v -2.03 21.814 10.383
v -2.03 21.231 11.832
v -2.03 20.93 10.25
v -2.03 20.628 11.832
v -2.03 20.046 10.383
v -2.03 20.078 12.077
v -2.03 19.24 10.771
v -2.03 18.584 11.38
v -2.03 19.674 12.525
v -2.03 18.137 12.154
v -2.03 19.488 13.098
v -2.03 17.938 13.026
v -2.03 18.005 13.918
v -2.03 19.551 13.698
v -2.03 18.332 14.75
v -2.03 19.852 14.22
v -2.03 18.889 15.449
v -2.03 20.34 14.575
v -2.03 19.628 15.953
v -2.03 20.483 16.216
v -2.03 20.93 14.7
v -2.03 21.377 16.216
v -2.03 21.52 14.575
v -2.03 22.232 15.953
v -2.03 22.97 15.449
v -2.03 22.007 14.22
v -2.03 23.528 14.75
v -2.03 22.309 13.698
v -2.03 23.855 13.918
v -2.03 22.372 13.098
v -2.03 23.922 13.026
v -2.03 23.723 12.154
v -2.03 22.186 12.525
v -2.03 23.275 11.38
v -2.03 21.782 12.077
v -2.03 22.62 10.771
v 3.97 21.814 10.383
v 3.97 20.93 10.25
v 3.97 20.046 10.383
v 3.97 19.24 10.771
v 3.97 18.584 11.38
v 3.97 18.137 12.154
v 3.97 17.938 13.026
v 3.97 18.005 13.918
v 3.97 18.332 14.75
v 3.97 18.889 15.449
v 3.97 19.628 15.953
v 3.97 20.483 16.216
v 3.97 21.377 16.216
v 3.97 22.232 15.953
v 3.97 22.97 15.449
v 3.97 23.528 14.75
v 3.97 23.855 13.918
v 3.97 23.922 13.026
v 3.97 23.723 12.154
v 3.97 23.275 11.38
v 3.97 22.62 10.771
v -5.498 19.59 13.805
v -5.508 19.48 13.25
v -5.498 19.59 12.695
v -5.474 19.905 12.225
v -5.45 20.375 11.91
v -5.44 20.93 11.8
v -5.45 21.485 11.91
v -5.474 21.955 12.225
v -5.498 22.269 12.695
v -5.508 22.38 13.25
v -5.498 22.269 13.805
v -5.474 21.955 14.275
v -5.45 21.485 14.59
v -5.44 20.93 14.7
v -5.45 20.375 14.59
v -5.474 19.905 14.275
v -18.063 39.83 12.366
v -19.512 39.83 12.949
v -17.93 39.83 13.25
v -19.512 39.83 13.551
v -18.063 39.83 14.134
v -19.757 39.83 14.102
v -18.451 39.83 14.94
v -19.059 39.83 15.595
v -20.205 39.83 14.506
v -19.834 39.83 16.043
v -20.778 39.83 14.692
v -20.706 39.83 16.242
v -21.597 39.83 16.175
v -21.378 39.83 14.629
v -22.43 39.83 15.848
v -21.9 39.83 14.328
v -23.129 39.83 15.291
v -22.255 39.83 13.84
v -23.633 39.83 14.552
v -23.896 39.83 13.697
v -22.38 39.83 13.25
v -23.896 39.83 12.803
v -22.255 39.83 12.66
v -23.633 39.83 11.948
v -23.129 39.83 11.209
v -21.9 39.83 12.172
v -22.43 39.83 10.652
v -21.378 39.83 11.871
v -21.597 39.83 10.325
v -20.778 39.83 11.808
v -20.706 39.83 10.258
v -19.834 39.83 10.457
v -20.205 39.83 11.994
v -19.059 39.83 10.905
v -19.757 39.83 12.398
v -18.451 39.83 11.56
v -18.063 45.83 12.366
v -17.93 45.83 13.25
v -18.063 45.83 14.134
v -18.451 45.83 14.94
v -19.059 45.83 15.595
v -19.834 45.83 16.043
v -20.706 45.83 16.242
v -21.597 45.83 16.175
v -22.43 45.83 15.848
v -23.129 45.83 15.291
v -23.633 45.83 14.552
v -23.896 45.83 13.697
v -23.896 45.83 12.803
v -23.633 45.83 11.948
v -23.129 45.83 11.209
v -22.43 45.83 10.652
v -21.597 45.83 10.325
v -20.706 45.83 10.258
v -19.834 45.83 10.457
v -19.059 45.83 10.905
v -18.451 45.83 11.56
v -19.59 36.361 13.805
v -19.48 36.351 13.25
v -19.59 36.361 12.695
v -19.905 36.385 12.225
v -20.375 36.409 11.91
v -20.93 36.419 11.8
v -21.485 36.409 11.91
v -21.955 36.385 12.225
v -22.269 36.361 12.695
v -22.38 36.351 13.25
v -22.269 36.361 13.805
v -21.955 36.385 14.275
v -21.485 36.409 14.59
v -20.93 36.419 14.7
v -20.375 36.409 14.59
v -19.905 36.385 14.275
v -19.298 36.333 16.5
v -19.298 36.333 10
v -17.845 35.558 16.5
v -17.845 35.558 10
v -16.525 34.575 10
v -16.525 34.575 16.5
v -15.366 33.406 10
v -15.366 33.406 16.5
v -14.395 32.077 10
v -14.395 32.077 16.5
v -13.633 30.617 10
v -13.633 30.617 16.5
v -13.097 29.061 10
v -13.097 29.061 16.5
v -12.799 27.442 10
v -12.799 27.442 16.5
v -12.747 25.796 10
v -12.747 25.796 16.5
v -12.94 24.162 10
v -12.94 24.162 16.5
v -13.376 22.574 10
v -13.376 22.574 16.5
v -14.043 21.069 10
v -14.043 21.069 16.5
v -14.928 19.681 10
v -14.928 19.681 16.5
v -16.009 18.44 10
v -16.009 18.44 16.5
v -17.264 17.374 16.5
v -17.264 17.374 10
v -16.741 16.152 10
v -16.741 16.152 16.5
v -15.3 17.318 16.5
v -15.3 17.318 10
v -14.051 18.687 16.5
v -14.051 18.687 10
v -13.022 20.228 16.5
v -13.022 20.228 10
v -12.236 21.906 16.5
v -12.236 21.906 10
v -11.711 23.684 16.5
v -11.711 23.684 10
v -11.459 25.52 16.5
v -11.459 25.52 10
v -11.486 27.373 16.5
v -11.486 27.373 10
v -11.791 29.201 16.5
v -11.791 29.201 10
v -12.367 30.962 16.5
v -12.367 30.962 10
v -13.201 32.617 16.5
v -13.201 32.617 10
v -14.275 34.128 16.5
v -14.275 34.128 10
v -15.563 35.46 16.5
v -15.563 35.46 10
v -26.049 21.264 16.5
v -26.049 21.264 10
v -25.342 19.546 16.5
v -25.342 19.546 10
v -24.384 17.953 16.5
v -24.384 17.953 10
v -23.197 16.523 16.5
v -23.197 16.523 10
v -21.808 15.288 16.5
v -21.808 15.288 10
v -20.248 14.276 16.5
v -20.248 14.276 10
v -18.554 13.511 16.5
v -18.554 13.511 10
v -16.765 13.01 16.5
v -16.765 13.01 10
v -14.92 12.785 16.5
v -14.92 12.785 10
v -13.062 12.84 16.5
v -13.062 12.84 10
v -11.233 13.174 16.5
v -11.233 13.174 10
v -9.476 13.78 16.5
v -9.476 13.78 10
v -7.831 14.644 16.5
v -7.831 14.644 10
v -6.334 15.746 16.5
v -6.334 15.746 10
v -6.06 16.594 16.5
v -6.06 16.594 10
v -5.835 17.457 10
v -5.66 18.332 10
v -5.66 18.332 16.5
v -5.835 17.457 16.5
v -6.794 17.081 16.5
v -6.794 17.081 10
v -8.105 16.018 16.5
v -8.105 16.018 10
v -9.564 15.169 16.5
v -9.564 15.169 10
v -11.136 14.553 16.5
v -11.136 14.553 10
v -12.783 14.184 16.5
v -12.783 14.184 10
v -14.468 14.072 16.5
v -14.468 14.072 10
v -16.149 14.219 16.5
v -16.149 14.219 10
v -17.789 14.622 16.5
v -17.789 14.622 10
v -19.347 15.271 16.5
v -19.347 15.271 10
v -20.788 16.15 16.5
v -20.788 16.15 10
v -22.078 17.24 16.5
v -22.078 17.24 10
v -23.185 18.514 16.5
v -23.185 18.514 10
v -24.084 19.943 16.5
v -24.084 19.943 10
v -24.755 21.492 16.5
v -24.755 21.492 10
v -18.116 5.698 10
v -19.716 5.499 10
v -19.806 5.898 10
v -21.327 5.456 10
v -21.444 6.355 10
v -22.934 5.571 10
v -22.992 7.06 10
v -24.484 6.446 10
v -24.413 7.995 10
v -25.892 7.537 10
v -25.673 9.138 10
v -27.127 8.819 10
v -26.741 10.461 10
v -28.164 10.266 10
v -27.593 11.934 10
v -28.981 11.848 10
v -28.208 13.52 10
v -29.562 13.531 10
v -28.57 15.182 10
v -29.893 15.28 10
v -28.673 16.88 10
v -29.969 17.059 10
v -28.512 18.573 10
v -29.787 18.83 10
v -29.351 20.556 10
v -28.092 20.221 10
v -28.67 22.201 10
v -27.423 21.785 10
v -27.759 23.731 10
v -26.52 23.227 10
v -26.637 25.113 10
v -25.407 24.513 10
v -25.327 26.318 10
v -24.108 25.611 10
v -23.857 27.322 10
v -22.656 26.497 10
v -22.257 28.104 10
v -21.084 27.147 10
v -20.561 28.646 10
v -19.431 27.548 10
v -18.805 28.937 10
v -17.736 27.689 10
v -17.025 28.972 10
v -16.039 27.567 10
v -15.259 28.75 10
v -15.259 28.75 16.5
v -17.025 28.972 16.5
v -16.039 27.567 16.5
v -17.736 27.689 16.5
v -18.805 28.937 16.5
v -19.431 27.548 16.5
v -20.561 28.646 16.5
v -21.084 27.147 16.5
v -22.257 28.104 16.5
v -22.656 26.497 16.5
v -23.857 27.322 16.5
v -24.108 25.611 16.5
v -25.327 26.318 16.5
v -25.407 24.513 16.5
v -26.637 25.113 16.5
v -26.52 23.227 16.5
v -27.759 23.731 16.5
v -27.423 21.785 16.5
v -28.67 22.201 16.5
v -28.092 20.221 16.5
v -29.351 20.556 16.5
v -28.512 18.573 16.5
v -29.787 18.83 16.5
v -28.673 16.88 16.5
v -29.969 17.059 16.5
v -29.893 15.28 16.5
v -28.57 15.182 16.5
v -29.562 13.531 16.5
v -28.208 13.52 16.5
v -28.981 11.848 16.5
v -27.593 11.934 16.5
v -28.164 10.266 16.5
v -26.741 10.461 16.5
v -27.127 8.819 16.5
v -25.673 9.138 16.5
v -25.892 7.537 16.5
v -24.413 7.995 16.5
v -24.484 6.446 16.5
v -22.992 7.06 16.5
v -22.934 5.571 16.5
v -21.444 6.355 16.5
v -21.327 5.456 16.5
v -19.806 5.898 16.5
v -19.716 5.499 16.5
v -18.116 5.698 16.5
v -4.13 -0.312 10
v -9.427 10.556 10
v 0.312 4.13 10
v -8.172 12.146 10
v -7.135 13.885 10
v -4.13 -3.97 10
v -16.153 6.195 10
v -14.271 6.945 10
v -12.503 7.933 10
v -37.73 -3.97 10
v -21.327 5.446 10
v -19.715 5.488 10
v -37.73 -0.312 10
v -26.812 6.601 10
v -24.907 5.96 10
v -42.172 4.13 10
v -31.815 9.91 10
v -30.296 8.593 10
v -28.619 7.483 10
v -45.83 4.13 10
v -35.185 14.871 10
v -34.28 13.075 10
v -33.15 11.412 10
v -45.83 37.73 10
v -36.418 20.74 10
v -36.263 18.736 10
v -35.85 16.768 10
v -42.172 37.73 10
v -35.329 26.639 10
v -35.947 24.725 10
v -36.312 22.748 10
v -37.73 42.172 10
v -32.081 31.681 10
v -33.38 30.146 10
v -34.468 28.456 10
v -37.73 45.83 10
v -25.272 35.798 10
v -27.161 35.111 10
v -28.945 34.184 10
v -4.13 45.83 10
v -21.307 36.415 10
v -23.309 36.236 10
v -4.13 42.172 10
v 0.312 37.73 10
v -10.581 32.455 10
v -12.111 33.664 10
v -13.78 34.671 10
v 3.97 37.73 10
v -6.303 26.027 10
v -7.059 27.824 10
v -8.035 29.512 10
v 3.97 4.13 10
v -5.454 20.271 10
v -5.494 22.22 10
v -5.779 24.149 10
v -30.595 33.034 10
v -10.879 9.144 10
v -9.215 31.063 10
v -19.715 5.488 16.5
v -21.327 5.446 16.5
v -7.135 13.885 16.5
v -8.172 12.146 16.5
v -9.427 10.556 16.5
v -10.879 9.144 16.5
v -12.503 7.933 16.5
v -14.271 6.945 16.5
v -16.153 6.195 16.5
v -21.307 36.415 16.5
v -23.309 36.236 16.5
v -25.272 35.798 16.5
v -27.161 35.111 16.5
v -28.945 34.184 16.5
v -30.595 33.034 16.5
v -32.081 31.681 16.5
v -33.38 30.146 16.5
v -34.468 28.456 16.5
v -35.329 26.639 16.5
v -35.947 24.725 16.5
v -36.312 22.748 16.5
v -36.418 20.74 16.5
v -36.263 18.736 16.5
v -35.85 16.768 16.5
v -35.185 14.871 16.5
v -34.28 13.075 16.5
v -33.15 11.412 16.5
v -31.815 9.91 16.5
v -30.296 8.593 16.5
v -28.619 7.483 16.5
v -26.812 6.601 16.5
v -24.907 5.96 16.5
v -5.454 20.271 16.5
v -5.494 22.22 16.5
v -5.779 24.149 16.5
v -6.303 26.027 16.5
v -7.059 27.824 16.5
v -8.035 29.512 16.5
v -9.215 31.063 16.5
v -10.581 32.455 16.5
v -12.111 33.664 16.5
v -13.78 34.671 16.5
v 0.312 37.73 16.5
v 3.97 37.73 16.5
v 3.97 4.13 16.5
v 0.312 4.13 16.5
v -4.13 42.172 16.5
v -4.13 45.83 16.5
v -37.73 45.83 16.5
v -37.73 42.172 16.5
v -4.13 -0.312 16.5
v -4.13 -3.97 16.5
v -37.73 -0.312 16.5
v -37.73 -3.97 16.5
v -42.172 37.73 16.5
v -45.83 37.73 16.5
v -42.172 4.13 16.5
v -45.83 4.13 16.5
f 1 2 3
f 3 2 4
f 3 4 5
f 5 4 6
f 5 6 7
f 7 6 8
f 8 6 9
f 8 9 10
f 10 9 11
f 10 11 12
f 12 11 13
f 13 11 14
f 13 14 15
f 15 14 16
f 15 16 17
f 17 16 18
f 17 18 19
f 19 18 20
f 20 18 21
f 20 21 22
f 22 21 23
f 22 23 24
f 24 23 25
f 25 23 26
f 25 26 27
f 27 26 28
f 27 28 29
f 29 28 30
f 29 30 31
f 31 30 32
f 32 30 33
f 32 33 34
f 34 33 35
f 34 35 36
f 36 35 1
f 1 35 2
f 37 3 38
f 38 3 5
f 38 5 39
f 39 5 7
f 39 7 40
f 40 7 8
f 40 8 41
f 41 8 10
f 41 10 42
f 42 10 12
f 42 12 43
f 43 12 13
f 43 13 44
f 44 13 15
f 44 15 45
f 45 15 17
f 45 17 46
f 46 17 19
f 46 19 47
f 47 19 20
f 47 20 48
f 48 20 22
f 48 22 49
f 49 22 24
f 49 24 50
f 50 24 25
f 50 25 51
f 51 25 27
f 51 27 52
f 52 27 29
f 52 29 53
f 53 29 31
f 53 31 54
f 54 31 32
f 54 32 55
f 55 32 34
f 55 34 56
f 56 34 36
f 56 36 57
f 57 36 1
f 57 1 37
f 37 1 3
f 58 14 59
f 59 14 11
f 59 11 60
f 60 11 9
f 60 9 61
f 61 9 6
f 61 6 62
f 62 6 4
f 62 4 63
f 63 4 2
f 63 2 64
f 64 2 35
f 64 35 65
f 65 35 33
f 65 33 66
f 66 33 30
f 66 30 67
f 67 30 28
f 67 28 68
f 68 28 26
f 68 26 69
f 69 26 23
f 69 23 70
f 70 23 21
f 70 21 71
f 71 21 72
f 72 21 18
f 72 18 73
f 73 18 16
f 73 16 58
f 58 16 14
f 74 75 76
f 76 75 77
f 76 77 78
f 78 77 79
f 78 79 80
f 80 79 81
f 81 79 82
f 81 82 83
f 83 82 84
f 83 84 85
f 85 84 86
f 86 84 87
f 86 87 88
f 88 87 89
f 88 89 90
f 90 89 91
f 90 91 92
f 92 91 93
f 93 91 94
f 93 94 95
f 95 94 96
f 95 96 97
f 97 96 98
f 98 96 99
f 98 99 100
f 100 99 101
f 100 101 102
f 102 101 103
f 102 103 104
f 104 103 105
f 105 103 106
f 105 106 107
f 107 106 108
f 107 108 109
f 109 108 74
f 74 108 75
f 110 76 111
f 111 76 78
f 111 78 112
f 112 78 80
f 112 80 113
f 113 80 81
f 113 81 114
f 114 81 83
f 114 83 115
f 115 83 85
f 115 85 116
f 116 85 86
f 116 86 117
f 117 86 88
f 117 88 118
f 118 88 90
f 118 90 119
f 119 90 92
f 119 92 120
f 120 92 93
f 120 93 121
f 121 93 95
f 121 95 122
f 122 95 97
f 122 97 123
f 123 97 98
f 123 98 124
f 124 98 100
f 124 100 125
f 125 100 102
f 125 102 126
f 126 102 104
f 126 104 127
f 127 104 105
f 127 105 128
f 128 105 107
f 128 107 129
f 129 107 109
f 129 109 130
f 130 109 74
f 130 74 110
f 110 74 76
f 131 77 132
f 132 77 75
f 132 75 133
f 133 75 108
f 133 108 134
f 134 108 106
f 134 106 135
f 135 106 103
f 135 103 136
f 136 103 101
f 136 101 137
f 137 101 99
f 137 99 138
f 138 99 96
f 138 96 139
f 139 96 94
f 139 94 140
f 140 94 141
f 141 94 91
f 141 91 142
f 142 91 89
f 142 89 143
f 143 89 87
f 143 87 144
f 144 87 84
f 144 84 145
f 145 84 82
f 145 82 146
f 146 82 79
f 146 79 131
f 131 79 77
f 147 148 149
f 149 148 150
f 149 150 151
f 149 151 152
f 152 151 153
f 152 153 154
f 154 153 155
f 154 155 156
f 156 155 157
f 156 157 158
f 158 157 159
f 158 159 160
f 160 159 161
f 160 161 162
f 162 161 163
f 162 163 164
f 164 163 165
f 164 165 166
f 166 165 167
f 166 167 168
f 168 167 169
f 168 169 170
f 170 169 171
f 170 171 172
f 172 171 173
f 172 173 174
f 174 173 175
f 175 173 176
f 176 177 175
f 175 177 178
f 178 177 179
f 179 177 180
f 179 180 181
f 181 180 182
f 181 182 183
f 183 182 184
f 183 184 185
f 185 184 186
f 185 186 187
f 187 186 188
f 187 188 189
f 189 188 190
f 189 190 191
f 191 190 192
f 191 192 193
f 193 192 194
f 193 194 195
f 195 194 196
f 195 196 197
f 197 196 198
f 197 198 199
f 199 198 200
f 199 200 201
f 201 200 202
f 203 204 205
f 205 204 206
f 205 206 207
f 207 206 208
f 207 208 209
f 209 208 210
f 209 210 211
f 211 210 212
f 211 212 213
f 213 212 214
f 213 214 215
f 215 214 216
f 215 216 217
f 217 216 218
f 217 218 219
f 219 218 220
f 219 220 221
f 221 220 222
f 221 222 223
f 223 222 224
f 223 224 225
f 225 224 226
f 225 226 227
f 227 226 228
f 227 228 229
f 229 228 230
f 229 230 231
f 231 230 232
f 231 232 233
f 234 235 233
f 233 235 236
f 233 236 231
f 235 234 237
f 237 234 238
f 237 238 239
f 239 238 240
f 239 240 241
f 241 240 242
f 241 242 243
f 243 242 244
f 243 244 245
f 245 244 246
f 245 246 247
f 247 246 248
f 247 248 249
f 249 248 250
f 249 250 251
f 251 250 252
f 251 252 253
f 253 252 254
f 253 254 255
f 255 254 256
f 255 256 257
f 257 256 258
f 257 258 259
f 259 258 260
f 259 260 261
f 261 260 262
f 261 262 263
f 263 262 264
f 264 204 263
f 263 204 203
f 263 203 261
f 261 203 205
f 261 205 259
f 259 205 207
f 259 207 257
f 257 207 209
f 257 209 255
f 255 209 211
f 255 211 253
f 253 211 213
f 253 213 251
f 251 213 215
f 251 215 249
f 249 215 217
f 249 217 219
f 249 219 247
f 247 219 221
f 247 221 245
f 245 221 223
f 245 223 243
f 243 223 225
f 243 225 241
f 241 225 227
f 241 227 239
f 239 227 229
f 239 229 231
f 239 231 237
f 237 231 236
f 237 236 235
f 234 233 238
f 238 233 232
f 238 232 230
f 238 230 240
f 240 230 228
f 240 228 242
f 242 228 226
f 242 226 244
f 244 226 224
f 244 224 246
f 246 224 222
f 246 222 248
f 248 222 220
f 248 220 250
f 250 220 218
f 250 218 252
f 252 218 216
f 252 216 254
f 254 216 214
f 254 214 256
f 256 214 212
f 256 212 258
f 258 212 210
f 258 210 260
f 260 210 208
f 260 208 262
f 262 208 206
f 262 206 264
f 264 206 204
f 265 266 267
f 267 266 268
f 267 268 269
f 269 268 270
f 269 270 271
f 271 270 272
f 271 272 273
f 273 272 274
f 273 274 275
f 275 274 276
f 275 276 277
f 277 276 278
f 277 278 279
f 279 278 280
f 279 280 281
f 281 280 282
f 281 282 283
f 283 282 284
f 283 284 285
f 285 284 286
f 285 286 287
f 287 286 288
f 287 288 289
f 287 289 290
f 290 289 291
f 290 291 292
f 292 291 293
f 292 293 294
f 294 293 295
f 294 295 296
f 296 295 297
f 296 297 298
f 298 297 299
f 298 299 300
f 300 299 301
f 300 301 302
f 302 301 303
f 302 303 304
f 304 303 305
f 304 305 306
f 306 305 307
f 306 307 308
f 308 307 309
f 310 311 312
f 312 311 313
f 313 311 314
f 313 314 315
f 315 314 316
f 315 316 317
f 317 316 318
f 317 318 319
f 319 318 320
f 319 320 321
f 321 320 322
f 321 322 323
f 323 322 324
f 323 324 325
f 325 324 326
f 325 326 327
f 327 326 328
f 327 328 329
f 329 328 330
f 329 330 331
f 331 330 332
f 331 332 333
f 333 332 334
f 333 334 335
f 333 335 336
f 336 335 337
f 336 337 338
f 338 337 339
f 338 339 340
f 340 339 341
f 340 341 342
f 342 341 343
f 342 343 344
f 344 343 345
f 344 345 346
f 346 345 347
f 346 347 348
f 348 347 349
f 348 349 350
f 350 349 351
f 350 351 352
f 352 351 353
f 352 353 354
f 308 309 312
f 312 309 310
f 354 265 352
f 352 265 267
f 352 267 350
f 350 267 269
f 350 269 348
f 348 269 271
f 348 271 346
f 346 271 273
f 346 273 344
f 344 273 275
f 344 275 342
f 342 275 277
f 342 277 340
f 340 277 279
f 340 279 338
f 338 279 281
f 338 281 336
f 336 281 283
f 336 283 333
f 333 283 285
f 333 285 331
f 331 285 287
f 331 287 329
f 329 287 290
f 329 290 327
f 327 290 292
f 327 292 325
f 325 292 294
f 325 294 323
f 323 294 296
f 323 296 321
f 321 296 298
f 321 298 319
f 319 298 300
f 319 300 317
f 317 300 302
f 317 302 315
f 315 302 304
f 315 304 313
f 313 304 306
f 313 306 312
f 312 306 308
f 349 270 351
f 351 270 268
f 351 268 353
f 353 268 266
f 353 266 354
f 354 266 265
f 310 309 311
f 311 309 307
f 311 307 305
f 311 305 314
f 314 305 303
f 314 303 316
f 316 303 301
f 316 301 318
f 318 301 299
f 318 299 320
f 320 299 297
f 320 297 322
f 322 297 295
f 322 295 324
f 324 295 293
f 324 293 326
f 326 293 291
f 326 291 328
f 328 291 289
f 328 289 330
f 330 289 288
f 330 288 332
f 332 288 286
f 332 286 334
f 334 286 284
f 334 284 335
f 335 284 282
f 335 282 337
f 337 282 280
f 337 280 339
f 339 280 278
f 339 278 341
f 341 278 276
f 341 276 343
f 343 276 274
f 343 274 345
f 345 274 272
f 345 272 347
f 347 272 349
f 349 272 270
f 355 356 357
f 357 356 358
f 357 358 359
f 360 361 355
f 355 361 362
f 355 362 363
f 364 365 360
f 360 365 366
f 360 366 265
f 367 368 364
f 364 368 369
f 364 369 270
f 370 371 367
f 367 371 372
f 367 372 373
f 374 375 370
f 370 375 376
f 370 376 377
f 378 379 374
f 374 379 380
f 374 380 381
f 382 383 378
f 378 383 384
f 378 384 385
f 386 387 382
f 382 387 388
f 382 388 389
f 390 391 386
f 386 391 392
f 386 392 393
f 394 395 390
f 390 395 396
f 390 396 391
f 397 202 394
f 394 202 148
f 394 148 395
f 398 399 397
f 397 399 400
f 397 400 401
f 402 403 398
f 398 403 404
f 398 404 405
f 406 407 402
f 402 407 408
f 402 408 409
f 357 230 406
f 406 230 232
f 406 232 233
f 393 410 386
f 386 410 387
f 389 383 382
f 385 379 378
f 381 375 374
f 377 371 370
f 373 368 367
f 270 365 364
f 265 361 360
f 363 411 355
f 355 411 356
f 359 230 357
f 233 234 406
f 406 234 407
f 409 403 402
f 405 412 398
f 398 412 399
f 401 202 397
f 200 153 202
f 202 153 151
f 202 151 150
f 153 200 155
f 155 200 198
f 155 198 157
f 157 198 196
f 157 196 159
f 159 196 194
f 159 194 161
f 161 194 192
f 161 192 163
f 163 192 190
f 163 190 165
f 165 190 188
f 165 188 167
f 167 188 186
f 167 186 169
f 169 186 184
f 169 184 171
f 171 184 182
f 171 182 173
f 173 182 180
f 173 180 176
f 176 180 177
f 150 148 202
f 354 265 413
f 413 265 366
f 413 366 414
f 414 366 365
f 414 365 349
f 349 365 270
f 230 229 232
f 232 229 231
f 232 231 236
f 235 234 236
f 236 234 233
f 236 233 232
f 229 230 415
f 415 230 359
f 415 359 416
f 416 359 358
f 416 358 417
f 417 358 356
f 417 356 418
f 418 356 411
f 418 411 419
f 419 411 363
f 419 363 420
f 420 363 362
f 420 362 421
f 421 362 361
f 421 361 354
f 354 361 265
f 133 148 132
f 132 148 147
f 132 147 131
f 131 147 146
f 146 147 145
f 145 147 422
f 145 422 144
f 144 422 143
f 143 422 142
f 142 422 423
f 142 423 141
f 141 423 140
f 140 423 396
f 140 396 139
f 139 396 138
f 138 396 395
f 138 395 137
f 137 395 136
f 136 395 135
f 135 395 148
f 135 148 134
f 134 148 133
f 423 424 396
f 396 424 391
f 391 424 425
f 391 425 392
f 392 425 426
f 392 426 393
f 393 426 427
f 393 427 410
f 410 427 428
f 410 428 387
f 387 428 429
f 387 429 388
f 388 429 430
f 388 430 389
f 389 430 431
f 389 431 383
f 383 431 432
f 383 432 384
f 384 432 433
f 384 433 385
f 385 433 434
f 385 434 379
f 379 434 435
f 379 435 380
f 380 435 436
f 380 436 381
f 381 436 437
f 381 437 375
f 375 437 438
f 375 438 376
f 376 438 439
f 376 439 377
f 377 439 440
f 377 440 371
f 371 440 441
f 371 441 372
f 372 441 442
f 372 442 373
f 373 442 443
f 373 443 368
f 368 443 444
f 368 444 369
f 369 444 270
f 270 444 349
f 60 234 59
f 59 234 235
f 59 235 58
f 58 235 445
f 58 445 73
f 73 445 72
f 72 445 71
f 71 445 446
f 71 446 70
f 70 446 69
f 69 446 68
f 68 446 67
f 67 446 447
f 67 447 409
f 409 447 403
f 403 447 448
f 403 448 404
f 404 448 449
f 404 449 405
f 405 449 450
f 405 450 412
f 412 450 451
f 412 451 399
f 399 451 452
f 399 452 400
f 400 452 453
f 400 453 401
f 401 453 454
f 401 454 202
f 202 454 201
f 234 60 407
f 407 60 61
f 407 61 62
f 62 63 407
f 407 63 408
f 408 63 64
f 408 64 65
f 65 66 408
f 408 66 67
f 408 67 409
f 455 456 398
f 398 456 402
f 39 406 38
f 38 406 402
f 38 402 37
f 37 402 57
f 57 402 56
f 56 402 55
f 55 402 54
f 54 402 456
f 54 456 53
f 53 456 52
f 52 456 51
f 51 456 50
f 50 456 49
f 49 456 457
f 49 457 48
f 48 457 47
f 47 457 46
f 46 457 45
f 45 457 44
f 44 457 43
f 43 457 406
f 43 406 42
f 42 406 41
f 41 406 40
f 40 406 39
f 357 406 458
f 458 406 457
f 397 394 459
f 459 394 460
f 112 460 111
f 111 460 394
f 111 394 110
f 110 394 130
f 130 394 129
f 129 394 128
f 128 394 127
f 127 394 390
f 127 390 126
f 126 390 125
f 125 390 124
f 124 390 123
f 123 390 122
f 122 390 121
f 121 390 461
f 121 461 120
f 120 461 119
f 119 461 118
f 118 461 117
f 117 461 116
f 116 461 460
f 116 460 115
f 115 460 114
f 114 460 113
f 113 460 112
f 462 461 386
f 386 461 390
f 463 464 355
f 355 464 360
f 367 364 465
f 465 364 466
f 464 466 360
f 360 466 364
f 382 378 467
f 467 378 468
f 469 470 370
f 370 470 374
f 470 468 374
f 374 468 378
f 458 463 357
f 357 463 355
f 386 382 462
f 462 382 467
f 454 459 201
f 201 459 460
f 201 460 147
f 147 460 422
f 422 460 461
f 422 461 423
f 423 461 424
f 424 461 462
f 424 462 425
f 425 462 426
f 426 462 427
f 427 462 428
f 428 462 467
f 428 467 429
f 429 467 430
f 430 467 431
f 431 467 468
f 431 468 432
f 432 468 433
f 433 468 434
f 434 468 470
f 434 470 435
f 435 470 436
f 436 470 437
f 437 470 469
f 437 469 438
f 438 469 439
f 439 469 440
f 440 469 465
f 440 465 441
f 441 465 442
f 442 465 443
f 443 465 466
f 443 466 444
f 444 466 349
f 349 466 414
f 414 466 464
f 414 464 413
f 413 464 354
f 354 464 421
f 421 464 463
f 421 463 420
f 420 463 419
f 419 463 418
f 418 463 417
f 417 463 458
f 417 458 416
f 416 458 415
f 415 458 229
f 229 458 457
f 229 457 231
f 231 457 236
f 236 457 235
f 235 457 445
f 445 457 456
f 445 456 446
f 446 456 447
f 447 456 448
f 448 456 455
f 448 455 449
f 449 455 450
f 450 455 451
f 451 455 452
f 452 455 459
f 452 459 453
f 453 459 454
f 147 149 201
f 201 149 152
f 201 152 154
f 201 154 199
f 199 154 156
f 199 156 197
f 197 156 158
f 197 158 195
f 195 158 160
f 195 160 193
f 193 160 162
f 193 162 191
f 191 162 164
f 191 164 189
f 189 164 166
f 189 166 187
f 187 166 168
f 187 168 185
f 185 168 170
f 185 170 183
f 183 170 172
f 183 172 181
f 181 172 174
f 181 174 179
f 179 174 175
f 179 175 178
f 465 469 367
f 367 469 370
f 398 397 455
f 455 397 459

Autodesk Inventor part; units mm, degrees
ref_plane "YZ Plane" through (0, 0, 0) normal (1, 0, 0) x (0, 1, 0)
ref_plane "Work Plane1" through (0, 0, 10) normal (0, 0, 1) x (1, 0, 0)
sketch "Sketch1" plane through (0, 0, 10) normal (0, 0, 1) x (1, 0, 0)
  line L0 (-4.0299, -0.3538) -> (-2.2322, 1.4439) construction
  arc A0 (-1.4439, 2.2322) -> (-2.2322, 1.4439) centre (-0.9299, 0.9299) ccw construction
  line L1 (-1.4439, 2.2322) -> (0.3538, 4.0299) construction
  line L2 (-37.8299, 42.2137) -> (-37.8299, 45.8299) construction
  line L3 (-37.8299, 45.8299) -> (-4.0299, 45.8299) construction
  line L4 (-4.0299, 45.8299) -> (-4.0299, 42.2137) construction
  line L5 (-4.0299, 4.0299) -> (0.3538, 4.0299) projected
  line L6 (-20.9299, 58.9723) -> (17.1124, 20.9299) construction
  line L7 (17.1124, 20.9299) -> (-20.9299, -17.1124) construction
  line L8 (-20.9299, -17.1124) -> (-58.9723, 20.9299) construction
  line L9 (-58.9723, 20.9299) -> (-20.9299, 58.9723) construction
  line L10 (-20.9299, 58.9723) -> (-20.9299, -17.1124) construction
  line L11 (17.1124, 20.9299) -> (-58.9723, 20.9299) construction
  line L12 (-20.9299, 58.9723) -> (32.8701, 58.9723) construction
  line L13 (-43.4299, 43.4299) -> (1.5701, 43.4299) construction
  line L14 (1.5701, 43.4299) -> (1.5701, -1.5701) construction
  line L15 (1.5701, -1.5701) -> (-43.4299, -1.5701) construction
  line L16 (-43.4299, -1.5701) -> (-43.4299, 43.4299) construction
  line L17 (-43.4299, 43.4299) -> (1.5701, -1.5701) construction
  line L18 (1.5701, 43.4299) -> (-43.4299, -1.5701) construction
  line L19 (-43.4299, 5.3876) -> (-43.4299, 36.4723)
  line L20 (-43.4299, 36.4723) -> (-36.4723, 43.4299)
  line L21 (-36.4723, 43.4299) -> (-5.3876, 43.4299)
  line L22 (-5.3876, 43.4299) -> (1.5701, 36.4723)
  line L23 (1.5701, 36.4723) -> (1.5701, 5.3876)
  line L24 (1.5701, 5.3876) -> (-5.3876, -1.5701)
  line L25 (-5.3876, -1.5701) -> (-36.4723, -1.5701)
  line L26 (-36.4723, -1.5701) -> (-43.4299, 5.3876)
  line L27 (-4.0299, 42.2137) -> (-37.8299, 42.2137) projected
  line L28 (-4.0299, -0.3538) -> (-4.0299, 4.0299) projected
  circle A1 centre (-20.9299, 20.9299) radius 13.3985
  circle A2 centre (-20.9299, 20.9299) radius 15.4895
  point P0 (-37.8299, 4.0299)
  dimension "d18" = 53.8
  dimension "d19" = 45
  dimension "d20" = 53.8
  dimension "d21" = 45
  dimension "d22" = 45
  dimension "d30" = 26.797
  dimension "d36" = 30.979
extrude "Extrusion1" add sketch "Sketch1" along normal blind 6.5 contours L28 L24 L25 L26 L19 L20 L27 L22 L23 L5 | L5 L24 L28 | L27 L20 L21 L22 | A1 | A2
ref_plane "Work Plane2" through (-40.9959, 0.8639, 22.2359) normal (0, 0, 1) x (1, 0, 0)
sketch "Sketch3" plane through (0, 0, 10) normal (0, 0, -1) x (-1, 0, 0)
  line L0 (37.8299, -0.4701) -> (37.8299, 4.0299) construction
  line L1 (4.0299, 4.0299) -> (4.0299, -0.4701) construction
  line L2 (37.8299, -0.4701) -> (37.8299, 1.1886) construction
  line L3 (4.0299, -3.9701) -> (4.0299, -0.3538) construction
  line L4 (45.8299, 4.0299) -> (42.2137, 4.0299) construction
  line L5 (-0.3538, 4.0299) -> (-3.9701, 4.0299) construction
  line L6 (-3.9701, 37.8299) -> (-0.3538, 37.8299) construction
  line L7 (4.0299, 42.2137) -> (4.0299, 45.8299) construction
  line L8 (37.8299, 45.8299) -> (37.8299, 42.2137) construction
  line L9 (42.2137, 37.8299) -> (45.8299, 37.8299) construction
  line L10 (37.8299, 37.7299) -> (45.8299, 37.7299)
  line L11 (45.8299, 37.7299) -> (45.8299, 4.1299)
  line L12 (45.8299, 4.1299) -> (37.8299, 4.1299)
  line L13 (37.8299, 4.1299) -> (37.8299, 37.7299)
  line L14 (37.7299, 4.0299) -> (4.1299, 4.0299)
  line L15 (4.1299, 4.0299) -> (4.1299, -3.9701)
  line L16 (4.1299, -3.9701) -> (37.7299, -3.9701)
  line L17 (37.7299, -3.9701) -> (37.7299, 4.0299)
  line L18 (4.0299, 4.1299) -> (-3.9701, 4.1299)
  line L19 (-3.9701, 4.1299) -> (-3.9701, 37.7299)
  line L20 (-3.9701, 37.7299) -> (4.0299, 37.7299)
  line L21 (4.0299, 37.7299) -> (4.0299, 4.1299)
  line L22 (4.1299, 37.8299) -> (37.7299, 37.8299)
  line L23 (37.7299, 37.8299) -> (37.7299, 45.8299)
  line L24 (37.7299, 45.8299) -> (4.1299, 45.8299)
  line L25 (4.1299, 45.8299) -> (4.1299, 37.8299)
  point P0 (0, 0)
  dimension "d23" = 0.1
  dimension "d24" = 0.1
  dimension "d25" = 0.1
  dimension "d26" = 0.1
  dimension "d27" = 0.1
extrude "Extrusion3" add sketch "Sketch3" against normal up to surface (6.5 mm away)
sketch "Sketch6" plane through (0, 0, 16.5) normal (0, 0, 1) x (1, 0, 0)
  circle A0 centre (-20.9299, 20.9299) radius 15.4895
  circle A1 centre (-20.9299, 20.9299) radius 13.3985
  line L0 (-45.8299, 4.1299) -> (-45.8299, 37.7299) projected
  line L1 (-4.1299, -3.9701) -> (-37.7299, -3.9701) projected
  line L2 (-37.7299, 45.8299) -> (-4.1299, 45.8299) projected
  point P0 (0, 0)
  point P1 (-45.8299, 20.9299)
  point P2 (-20.9299, -3.9701)
  point P3 (-20.9299, 45.8299)
  dimension "d37" = 26.797
  dimension "d38" = 30.979
extrude "Extrusion5" cut sketch "Sketch6" against normal blind 12 contours A0 | A1
sketch "Sketch7" plane through (0, 0, 16.5) normal (0, 0, 1) x (1, 0, 0)
  arc A0 (-16.0392, 27.567) -> (-18.1163, 5.6981) centre (-17.6742, 16.6892) ccw
  arc A1 (-15.2586, 28.7497) -> (-22.9342, 5.5706) centre (-17.6742, 16.6892) ccw
  line L0 (-15.2586, 28.7497) -> (-16.0392, 27.567)
  arc A2 (-22.9342, 5.5706) -> (-18.1163, 5.6981) centre (-20.9571, 21.9572) ccw
  arc A3 (-17.2642, 17.3743) -> (-19.2978, 36.3332) centre (-23.7366, 26.2686) ccw
  line L1 (-19.4299, 22.4299) -> (-13.0699, 7.5829) construction
  arc A4 (-15.5629, 35.4599) -> (-19.2978, 36.3332) centre (-20.2387, 23.8861) ccw
  line L2 (-19.4299, 22.4299) -> (-3.5175, 22.4299) construction
  line L3 (-19.4299, 22.4299) -> (-12.0453, 33.618) construction
  line L4 (-19.4299, 22.4299) -> (-27.814, 20.9536) construction
  arc A5 (-26.0492, 21.2644) -> (-6.3338, 15.7456) centre (-14.3533, 25.0717) ccw
  circle A6 centre (-20.9299, 20.9299) radius 15.4895 construction
  arc A7 (-13.9299, 22.4299) -> (-17.2642, 17.3743) centre (-19.4299, 22.4299) ccw construction
  line L5 (-26.0492, 21.2644) -> (-24.7546, 21.4923)
  arc A8 (-24.7546, 21.4923) -> (-5.6598, 18.332) centre (-14.3533, 25.0717) ccw
  circle A9 centre (-20.9299, 20.9299) radius 15.4895 construction
  line L6 (3.9701, 4.1299) -> (0.3124, 4.1299) construction
  line L7 (3.9701, 37.7299) -> (3.9701, 4.1299) construction
  line L8 (0.3124, 37.7299) -> (3.9701, 37.7299) construction
  line L9 (0.3124, 37.7299) -> (-4.1299, 42.1723) construction
  line L10 (-4.1299, 45.8299) -> (-4.1299, 42.1723) construction
  line L11 (-37.7299, 45.8299) -> (-4.1299, 45.8299) construction
  line L12 (-37.7299, 42.1723) -> (-37.7299, 45.8299) construction
  line L13 (-37.7299, 42.1723) -> (-42.1723, 37.7299) construction
  line L14 (-45.8299, 37.7299) -> (-42.1723, 37.7299) construction
  line L15 (-45.8299, 4.1299) -> (-45.8299, 37.7299) construction
  line L16 (-42.1723, 4.1299) -> (-45.8299, 4.1299) construction
  line L17 (-42.1723, 4.1299) -> (-37.7299, -0.3124) construction
  line L18 (-37.7299, -3.9701) -> (-37.7299, -0.3124) construction
  line L19 (-4.1299, -3.9701) -> (-37.7299, -3.9701) construction
  line L20 (-4.1299, -0.3124) -> (-4.1299, -3.9701) construction
  line L21 (-4.1299, -0.3124) -> (0.3124, 4.1299) construction
  line L22 (-17.2642, 17.3743) -> (-16.7406, 16.1519) construction
  arc A10 (-17.2642, 17.3743) -> (-13.9299, 22.4299) centre (-19.4299, 22.4299) ccw construction
  arc A11 (-16.7406, 16.1519) -> (-15.5629, 35.4599) centre (-23.7366, 26.2686) ccw
  line L23 (-17.2642, 17.3743) -> (-16.7406, 16.1519) construction
  line L24 (-16.7406, 16.1519) -> (-17.2642, 17.3743)
  arc A12 (-6.3338, 15.7456) -> (-5.6598, 18.332) centre (-21.0014, 20.9486) ccw
  point P0 (0, 0)
  point P1 (-17.9152, 11.0615)
  dimension "d58" = 1.3
  dimension "d60" = 1.3
  dimension "d63" = 1.3
  dimension "d78" = 1.5
  dimension "d79" = 1.5
  dimension "d81" = 11
  dimension "d82" = 11
  dimension "d83" = 11
  dimension "d86" = 5.5
extrude "Extrusion6" add sketch "Sketch7" against normal up to surface (6.5 mm away)
sketch "Sketch8" plane through (-37.7299, 45.8299, 10) normal (0, 1, 0) x (1, 0, 0)
  line L0 (0, 0) -> (33.6, 0) projected
  line L1 (0, -6.5) -> (33.6, -6.5) projected
  line L2 (33.6, 0) -> (33.6, -6.5) projected
  line L3 (0, 0) -> (0, -6.5) projected
  point P0 (37.7299, 10)
  point P1 (16.8, -3.25)
  point P2 (16.8, 0)
  point P3 (16.8, -6.5)
  point P4 (33.6, -3.25)
  point P5 (0, -3.25)
hole "Hole1" at (-20.9299, 45.8299, 13.25) direction (0, -1, 0) diameter 2.9 depth 11 tip angle 118 counterbore diameter 6 counterbore depth 6
sketch "Sketch9" plane through (3.9701, 4.1299, 10) normal (1, 0, 0) x (0, 0, -1)
  line L0 (0, 0) -> (0, 33.6) projected
  line L1 (-6.5, 33.6) -> (-6.5, 0) projected
  line L2 (0, 33.6) -> (-6.5, 33.6) projected
  line L3 (0, 0) -> (-6.5, 0) projected
  point P0 (10, -4.1299)
  point P1 (-3.25, 16.8)
  point P2 (0, 16.8)
  point P3 (-6.5, 16.8)
  point P4 (-3.25, 33.6)
  point P5 (-3.25, 0)
hole "Hole2" at (3.9701, 20.9299, 13.25) direction (-1, 0, 0) diameter 2.9 depth 11 tip angle 118 counterbore diameter 6 counterbore depth 6
properties part number "50_Cube_Insert_Thorlabs"
